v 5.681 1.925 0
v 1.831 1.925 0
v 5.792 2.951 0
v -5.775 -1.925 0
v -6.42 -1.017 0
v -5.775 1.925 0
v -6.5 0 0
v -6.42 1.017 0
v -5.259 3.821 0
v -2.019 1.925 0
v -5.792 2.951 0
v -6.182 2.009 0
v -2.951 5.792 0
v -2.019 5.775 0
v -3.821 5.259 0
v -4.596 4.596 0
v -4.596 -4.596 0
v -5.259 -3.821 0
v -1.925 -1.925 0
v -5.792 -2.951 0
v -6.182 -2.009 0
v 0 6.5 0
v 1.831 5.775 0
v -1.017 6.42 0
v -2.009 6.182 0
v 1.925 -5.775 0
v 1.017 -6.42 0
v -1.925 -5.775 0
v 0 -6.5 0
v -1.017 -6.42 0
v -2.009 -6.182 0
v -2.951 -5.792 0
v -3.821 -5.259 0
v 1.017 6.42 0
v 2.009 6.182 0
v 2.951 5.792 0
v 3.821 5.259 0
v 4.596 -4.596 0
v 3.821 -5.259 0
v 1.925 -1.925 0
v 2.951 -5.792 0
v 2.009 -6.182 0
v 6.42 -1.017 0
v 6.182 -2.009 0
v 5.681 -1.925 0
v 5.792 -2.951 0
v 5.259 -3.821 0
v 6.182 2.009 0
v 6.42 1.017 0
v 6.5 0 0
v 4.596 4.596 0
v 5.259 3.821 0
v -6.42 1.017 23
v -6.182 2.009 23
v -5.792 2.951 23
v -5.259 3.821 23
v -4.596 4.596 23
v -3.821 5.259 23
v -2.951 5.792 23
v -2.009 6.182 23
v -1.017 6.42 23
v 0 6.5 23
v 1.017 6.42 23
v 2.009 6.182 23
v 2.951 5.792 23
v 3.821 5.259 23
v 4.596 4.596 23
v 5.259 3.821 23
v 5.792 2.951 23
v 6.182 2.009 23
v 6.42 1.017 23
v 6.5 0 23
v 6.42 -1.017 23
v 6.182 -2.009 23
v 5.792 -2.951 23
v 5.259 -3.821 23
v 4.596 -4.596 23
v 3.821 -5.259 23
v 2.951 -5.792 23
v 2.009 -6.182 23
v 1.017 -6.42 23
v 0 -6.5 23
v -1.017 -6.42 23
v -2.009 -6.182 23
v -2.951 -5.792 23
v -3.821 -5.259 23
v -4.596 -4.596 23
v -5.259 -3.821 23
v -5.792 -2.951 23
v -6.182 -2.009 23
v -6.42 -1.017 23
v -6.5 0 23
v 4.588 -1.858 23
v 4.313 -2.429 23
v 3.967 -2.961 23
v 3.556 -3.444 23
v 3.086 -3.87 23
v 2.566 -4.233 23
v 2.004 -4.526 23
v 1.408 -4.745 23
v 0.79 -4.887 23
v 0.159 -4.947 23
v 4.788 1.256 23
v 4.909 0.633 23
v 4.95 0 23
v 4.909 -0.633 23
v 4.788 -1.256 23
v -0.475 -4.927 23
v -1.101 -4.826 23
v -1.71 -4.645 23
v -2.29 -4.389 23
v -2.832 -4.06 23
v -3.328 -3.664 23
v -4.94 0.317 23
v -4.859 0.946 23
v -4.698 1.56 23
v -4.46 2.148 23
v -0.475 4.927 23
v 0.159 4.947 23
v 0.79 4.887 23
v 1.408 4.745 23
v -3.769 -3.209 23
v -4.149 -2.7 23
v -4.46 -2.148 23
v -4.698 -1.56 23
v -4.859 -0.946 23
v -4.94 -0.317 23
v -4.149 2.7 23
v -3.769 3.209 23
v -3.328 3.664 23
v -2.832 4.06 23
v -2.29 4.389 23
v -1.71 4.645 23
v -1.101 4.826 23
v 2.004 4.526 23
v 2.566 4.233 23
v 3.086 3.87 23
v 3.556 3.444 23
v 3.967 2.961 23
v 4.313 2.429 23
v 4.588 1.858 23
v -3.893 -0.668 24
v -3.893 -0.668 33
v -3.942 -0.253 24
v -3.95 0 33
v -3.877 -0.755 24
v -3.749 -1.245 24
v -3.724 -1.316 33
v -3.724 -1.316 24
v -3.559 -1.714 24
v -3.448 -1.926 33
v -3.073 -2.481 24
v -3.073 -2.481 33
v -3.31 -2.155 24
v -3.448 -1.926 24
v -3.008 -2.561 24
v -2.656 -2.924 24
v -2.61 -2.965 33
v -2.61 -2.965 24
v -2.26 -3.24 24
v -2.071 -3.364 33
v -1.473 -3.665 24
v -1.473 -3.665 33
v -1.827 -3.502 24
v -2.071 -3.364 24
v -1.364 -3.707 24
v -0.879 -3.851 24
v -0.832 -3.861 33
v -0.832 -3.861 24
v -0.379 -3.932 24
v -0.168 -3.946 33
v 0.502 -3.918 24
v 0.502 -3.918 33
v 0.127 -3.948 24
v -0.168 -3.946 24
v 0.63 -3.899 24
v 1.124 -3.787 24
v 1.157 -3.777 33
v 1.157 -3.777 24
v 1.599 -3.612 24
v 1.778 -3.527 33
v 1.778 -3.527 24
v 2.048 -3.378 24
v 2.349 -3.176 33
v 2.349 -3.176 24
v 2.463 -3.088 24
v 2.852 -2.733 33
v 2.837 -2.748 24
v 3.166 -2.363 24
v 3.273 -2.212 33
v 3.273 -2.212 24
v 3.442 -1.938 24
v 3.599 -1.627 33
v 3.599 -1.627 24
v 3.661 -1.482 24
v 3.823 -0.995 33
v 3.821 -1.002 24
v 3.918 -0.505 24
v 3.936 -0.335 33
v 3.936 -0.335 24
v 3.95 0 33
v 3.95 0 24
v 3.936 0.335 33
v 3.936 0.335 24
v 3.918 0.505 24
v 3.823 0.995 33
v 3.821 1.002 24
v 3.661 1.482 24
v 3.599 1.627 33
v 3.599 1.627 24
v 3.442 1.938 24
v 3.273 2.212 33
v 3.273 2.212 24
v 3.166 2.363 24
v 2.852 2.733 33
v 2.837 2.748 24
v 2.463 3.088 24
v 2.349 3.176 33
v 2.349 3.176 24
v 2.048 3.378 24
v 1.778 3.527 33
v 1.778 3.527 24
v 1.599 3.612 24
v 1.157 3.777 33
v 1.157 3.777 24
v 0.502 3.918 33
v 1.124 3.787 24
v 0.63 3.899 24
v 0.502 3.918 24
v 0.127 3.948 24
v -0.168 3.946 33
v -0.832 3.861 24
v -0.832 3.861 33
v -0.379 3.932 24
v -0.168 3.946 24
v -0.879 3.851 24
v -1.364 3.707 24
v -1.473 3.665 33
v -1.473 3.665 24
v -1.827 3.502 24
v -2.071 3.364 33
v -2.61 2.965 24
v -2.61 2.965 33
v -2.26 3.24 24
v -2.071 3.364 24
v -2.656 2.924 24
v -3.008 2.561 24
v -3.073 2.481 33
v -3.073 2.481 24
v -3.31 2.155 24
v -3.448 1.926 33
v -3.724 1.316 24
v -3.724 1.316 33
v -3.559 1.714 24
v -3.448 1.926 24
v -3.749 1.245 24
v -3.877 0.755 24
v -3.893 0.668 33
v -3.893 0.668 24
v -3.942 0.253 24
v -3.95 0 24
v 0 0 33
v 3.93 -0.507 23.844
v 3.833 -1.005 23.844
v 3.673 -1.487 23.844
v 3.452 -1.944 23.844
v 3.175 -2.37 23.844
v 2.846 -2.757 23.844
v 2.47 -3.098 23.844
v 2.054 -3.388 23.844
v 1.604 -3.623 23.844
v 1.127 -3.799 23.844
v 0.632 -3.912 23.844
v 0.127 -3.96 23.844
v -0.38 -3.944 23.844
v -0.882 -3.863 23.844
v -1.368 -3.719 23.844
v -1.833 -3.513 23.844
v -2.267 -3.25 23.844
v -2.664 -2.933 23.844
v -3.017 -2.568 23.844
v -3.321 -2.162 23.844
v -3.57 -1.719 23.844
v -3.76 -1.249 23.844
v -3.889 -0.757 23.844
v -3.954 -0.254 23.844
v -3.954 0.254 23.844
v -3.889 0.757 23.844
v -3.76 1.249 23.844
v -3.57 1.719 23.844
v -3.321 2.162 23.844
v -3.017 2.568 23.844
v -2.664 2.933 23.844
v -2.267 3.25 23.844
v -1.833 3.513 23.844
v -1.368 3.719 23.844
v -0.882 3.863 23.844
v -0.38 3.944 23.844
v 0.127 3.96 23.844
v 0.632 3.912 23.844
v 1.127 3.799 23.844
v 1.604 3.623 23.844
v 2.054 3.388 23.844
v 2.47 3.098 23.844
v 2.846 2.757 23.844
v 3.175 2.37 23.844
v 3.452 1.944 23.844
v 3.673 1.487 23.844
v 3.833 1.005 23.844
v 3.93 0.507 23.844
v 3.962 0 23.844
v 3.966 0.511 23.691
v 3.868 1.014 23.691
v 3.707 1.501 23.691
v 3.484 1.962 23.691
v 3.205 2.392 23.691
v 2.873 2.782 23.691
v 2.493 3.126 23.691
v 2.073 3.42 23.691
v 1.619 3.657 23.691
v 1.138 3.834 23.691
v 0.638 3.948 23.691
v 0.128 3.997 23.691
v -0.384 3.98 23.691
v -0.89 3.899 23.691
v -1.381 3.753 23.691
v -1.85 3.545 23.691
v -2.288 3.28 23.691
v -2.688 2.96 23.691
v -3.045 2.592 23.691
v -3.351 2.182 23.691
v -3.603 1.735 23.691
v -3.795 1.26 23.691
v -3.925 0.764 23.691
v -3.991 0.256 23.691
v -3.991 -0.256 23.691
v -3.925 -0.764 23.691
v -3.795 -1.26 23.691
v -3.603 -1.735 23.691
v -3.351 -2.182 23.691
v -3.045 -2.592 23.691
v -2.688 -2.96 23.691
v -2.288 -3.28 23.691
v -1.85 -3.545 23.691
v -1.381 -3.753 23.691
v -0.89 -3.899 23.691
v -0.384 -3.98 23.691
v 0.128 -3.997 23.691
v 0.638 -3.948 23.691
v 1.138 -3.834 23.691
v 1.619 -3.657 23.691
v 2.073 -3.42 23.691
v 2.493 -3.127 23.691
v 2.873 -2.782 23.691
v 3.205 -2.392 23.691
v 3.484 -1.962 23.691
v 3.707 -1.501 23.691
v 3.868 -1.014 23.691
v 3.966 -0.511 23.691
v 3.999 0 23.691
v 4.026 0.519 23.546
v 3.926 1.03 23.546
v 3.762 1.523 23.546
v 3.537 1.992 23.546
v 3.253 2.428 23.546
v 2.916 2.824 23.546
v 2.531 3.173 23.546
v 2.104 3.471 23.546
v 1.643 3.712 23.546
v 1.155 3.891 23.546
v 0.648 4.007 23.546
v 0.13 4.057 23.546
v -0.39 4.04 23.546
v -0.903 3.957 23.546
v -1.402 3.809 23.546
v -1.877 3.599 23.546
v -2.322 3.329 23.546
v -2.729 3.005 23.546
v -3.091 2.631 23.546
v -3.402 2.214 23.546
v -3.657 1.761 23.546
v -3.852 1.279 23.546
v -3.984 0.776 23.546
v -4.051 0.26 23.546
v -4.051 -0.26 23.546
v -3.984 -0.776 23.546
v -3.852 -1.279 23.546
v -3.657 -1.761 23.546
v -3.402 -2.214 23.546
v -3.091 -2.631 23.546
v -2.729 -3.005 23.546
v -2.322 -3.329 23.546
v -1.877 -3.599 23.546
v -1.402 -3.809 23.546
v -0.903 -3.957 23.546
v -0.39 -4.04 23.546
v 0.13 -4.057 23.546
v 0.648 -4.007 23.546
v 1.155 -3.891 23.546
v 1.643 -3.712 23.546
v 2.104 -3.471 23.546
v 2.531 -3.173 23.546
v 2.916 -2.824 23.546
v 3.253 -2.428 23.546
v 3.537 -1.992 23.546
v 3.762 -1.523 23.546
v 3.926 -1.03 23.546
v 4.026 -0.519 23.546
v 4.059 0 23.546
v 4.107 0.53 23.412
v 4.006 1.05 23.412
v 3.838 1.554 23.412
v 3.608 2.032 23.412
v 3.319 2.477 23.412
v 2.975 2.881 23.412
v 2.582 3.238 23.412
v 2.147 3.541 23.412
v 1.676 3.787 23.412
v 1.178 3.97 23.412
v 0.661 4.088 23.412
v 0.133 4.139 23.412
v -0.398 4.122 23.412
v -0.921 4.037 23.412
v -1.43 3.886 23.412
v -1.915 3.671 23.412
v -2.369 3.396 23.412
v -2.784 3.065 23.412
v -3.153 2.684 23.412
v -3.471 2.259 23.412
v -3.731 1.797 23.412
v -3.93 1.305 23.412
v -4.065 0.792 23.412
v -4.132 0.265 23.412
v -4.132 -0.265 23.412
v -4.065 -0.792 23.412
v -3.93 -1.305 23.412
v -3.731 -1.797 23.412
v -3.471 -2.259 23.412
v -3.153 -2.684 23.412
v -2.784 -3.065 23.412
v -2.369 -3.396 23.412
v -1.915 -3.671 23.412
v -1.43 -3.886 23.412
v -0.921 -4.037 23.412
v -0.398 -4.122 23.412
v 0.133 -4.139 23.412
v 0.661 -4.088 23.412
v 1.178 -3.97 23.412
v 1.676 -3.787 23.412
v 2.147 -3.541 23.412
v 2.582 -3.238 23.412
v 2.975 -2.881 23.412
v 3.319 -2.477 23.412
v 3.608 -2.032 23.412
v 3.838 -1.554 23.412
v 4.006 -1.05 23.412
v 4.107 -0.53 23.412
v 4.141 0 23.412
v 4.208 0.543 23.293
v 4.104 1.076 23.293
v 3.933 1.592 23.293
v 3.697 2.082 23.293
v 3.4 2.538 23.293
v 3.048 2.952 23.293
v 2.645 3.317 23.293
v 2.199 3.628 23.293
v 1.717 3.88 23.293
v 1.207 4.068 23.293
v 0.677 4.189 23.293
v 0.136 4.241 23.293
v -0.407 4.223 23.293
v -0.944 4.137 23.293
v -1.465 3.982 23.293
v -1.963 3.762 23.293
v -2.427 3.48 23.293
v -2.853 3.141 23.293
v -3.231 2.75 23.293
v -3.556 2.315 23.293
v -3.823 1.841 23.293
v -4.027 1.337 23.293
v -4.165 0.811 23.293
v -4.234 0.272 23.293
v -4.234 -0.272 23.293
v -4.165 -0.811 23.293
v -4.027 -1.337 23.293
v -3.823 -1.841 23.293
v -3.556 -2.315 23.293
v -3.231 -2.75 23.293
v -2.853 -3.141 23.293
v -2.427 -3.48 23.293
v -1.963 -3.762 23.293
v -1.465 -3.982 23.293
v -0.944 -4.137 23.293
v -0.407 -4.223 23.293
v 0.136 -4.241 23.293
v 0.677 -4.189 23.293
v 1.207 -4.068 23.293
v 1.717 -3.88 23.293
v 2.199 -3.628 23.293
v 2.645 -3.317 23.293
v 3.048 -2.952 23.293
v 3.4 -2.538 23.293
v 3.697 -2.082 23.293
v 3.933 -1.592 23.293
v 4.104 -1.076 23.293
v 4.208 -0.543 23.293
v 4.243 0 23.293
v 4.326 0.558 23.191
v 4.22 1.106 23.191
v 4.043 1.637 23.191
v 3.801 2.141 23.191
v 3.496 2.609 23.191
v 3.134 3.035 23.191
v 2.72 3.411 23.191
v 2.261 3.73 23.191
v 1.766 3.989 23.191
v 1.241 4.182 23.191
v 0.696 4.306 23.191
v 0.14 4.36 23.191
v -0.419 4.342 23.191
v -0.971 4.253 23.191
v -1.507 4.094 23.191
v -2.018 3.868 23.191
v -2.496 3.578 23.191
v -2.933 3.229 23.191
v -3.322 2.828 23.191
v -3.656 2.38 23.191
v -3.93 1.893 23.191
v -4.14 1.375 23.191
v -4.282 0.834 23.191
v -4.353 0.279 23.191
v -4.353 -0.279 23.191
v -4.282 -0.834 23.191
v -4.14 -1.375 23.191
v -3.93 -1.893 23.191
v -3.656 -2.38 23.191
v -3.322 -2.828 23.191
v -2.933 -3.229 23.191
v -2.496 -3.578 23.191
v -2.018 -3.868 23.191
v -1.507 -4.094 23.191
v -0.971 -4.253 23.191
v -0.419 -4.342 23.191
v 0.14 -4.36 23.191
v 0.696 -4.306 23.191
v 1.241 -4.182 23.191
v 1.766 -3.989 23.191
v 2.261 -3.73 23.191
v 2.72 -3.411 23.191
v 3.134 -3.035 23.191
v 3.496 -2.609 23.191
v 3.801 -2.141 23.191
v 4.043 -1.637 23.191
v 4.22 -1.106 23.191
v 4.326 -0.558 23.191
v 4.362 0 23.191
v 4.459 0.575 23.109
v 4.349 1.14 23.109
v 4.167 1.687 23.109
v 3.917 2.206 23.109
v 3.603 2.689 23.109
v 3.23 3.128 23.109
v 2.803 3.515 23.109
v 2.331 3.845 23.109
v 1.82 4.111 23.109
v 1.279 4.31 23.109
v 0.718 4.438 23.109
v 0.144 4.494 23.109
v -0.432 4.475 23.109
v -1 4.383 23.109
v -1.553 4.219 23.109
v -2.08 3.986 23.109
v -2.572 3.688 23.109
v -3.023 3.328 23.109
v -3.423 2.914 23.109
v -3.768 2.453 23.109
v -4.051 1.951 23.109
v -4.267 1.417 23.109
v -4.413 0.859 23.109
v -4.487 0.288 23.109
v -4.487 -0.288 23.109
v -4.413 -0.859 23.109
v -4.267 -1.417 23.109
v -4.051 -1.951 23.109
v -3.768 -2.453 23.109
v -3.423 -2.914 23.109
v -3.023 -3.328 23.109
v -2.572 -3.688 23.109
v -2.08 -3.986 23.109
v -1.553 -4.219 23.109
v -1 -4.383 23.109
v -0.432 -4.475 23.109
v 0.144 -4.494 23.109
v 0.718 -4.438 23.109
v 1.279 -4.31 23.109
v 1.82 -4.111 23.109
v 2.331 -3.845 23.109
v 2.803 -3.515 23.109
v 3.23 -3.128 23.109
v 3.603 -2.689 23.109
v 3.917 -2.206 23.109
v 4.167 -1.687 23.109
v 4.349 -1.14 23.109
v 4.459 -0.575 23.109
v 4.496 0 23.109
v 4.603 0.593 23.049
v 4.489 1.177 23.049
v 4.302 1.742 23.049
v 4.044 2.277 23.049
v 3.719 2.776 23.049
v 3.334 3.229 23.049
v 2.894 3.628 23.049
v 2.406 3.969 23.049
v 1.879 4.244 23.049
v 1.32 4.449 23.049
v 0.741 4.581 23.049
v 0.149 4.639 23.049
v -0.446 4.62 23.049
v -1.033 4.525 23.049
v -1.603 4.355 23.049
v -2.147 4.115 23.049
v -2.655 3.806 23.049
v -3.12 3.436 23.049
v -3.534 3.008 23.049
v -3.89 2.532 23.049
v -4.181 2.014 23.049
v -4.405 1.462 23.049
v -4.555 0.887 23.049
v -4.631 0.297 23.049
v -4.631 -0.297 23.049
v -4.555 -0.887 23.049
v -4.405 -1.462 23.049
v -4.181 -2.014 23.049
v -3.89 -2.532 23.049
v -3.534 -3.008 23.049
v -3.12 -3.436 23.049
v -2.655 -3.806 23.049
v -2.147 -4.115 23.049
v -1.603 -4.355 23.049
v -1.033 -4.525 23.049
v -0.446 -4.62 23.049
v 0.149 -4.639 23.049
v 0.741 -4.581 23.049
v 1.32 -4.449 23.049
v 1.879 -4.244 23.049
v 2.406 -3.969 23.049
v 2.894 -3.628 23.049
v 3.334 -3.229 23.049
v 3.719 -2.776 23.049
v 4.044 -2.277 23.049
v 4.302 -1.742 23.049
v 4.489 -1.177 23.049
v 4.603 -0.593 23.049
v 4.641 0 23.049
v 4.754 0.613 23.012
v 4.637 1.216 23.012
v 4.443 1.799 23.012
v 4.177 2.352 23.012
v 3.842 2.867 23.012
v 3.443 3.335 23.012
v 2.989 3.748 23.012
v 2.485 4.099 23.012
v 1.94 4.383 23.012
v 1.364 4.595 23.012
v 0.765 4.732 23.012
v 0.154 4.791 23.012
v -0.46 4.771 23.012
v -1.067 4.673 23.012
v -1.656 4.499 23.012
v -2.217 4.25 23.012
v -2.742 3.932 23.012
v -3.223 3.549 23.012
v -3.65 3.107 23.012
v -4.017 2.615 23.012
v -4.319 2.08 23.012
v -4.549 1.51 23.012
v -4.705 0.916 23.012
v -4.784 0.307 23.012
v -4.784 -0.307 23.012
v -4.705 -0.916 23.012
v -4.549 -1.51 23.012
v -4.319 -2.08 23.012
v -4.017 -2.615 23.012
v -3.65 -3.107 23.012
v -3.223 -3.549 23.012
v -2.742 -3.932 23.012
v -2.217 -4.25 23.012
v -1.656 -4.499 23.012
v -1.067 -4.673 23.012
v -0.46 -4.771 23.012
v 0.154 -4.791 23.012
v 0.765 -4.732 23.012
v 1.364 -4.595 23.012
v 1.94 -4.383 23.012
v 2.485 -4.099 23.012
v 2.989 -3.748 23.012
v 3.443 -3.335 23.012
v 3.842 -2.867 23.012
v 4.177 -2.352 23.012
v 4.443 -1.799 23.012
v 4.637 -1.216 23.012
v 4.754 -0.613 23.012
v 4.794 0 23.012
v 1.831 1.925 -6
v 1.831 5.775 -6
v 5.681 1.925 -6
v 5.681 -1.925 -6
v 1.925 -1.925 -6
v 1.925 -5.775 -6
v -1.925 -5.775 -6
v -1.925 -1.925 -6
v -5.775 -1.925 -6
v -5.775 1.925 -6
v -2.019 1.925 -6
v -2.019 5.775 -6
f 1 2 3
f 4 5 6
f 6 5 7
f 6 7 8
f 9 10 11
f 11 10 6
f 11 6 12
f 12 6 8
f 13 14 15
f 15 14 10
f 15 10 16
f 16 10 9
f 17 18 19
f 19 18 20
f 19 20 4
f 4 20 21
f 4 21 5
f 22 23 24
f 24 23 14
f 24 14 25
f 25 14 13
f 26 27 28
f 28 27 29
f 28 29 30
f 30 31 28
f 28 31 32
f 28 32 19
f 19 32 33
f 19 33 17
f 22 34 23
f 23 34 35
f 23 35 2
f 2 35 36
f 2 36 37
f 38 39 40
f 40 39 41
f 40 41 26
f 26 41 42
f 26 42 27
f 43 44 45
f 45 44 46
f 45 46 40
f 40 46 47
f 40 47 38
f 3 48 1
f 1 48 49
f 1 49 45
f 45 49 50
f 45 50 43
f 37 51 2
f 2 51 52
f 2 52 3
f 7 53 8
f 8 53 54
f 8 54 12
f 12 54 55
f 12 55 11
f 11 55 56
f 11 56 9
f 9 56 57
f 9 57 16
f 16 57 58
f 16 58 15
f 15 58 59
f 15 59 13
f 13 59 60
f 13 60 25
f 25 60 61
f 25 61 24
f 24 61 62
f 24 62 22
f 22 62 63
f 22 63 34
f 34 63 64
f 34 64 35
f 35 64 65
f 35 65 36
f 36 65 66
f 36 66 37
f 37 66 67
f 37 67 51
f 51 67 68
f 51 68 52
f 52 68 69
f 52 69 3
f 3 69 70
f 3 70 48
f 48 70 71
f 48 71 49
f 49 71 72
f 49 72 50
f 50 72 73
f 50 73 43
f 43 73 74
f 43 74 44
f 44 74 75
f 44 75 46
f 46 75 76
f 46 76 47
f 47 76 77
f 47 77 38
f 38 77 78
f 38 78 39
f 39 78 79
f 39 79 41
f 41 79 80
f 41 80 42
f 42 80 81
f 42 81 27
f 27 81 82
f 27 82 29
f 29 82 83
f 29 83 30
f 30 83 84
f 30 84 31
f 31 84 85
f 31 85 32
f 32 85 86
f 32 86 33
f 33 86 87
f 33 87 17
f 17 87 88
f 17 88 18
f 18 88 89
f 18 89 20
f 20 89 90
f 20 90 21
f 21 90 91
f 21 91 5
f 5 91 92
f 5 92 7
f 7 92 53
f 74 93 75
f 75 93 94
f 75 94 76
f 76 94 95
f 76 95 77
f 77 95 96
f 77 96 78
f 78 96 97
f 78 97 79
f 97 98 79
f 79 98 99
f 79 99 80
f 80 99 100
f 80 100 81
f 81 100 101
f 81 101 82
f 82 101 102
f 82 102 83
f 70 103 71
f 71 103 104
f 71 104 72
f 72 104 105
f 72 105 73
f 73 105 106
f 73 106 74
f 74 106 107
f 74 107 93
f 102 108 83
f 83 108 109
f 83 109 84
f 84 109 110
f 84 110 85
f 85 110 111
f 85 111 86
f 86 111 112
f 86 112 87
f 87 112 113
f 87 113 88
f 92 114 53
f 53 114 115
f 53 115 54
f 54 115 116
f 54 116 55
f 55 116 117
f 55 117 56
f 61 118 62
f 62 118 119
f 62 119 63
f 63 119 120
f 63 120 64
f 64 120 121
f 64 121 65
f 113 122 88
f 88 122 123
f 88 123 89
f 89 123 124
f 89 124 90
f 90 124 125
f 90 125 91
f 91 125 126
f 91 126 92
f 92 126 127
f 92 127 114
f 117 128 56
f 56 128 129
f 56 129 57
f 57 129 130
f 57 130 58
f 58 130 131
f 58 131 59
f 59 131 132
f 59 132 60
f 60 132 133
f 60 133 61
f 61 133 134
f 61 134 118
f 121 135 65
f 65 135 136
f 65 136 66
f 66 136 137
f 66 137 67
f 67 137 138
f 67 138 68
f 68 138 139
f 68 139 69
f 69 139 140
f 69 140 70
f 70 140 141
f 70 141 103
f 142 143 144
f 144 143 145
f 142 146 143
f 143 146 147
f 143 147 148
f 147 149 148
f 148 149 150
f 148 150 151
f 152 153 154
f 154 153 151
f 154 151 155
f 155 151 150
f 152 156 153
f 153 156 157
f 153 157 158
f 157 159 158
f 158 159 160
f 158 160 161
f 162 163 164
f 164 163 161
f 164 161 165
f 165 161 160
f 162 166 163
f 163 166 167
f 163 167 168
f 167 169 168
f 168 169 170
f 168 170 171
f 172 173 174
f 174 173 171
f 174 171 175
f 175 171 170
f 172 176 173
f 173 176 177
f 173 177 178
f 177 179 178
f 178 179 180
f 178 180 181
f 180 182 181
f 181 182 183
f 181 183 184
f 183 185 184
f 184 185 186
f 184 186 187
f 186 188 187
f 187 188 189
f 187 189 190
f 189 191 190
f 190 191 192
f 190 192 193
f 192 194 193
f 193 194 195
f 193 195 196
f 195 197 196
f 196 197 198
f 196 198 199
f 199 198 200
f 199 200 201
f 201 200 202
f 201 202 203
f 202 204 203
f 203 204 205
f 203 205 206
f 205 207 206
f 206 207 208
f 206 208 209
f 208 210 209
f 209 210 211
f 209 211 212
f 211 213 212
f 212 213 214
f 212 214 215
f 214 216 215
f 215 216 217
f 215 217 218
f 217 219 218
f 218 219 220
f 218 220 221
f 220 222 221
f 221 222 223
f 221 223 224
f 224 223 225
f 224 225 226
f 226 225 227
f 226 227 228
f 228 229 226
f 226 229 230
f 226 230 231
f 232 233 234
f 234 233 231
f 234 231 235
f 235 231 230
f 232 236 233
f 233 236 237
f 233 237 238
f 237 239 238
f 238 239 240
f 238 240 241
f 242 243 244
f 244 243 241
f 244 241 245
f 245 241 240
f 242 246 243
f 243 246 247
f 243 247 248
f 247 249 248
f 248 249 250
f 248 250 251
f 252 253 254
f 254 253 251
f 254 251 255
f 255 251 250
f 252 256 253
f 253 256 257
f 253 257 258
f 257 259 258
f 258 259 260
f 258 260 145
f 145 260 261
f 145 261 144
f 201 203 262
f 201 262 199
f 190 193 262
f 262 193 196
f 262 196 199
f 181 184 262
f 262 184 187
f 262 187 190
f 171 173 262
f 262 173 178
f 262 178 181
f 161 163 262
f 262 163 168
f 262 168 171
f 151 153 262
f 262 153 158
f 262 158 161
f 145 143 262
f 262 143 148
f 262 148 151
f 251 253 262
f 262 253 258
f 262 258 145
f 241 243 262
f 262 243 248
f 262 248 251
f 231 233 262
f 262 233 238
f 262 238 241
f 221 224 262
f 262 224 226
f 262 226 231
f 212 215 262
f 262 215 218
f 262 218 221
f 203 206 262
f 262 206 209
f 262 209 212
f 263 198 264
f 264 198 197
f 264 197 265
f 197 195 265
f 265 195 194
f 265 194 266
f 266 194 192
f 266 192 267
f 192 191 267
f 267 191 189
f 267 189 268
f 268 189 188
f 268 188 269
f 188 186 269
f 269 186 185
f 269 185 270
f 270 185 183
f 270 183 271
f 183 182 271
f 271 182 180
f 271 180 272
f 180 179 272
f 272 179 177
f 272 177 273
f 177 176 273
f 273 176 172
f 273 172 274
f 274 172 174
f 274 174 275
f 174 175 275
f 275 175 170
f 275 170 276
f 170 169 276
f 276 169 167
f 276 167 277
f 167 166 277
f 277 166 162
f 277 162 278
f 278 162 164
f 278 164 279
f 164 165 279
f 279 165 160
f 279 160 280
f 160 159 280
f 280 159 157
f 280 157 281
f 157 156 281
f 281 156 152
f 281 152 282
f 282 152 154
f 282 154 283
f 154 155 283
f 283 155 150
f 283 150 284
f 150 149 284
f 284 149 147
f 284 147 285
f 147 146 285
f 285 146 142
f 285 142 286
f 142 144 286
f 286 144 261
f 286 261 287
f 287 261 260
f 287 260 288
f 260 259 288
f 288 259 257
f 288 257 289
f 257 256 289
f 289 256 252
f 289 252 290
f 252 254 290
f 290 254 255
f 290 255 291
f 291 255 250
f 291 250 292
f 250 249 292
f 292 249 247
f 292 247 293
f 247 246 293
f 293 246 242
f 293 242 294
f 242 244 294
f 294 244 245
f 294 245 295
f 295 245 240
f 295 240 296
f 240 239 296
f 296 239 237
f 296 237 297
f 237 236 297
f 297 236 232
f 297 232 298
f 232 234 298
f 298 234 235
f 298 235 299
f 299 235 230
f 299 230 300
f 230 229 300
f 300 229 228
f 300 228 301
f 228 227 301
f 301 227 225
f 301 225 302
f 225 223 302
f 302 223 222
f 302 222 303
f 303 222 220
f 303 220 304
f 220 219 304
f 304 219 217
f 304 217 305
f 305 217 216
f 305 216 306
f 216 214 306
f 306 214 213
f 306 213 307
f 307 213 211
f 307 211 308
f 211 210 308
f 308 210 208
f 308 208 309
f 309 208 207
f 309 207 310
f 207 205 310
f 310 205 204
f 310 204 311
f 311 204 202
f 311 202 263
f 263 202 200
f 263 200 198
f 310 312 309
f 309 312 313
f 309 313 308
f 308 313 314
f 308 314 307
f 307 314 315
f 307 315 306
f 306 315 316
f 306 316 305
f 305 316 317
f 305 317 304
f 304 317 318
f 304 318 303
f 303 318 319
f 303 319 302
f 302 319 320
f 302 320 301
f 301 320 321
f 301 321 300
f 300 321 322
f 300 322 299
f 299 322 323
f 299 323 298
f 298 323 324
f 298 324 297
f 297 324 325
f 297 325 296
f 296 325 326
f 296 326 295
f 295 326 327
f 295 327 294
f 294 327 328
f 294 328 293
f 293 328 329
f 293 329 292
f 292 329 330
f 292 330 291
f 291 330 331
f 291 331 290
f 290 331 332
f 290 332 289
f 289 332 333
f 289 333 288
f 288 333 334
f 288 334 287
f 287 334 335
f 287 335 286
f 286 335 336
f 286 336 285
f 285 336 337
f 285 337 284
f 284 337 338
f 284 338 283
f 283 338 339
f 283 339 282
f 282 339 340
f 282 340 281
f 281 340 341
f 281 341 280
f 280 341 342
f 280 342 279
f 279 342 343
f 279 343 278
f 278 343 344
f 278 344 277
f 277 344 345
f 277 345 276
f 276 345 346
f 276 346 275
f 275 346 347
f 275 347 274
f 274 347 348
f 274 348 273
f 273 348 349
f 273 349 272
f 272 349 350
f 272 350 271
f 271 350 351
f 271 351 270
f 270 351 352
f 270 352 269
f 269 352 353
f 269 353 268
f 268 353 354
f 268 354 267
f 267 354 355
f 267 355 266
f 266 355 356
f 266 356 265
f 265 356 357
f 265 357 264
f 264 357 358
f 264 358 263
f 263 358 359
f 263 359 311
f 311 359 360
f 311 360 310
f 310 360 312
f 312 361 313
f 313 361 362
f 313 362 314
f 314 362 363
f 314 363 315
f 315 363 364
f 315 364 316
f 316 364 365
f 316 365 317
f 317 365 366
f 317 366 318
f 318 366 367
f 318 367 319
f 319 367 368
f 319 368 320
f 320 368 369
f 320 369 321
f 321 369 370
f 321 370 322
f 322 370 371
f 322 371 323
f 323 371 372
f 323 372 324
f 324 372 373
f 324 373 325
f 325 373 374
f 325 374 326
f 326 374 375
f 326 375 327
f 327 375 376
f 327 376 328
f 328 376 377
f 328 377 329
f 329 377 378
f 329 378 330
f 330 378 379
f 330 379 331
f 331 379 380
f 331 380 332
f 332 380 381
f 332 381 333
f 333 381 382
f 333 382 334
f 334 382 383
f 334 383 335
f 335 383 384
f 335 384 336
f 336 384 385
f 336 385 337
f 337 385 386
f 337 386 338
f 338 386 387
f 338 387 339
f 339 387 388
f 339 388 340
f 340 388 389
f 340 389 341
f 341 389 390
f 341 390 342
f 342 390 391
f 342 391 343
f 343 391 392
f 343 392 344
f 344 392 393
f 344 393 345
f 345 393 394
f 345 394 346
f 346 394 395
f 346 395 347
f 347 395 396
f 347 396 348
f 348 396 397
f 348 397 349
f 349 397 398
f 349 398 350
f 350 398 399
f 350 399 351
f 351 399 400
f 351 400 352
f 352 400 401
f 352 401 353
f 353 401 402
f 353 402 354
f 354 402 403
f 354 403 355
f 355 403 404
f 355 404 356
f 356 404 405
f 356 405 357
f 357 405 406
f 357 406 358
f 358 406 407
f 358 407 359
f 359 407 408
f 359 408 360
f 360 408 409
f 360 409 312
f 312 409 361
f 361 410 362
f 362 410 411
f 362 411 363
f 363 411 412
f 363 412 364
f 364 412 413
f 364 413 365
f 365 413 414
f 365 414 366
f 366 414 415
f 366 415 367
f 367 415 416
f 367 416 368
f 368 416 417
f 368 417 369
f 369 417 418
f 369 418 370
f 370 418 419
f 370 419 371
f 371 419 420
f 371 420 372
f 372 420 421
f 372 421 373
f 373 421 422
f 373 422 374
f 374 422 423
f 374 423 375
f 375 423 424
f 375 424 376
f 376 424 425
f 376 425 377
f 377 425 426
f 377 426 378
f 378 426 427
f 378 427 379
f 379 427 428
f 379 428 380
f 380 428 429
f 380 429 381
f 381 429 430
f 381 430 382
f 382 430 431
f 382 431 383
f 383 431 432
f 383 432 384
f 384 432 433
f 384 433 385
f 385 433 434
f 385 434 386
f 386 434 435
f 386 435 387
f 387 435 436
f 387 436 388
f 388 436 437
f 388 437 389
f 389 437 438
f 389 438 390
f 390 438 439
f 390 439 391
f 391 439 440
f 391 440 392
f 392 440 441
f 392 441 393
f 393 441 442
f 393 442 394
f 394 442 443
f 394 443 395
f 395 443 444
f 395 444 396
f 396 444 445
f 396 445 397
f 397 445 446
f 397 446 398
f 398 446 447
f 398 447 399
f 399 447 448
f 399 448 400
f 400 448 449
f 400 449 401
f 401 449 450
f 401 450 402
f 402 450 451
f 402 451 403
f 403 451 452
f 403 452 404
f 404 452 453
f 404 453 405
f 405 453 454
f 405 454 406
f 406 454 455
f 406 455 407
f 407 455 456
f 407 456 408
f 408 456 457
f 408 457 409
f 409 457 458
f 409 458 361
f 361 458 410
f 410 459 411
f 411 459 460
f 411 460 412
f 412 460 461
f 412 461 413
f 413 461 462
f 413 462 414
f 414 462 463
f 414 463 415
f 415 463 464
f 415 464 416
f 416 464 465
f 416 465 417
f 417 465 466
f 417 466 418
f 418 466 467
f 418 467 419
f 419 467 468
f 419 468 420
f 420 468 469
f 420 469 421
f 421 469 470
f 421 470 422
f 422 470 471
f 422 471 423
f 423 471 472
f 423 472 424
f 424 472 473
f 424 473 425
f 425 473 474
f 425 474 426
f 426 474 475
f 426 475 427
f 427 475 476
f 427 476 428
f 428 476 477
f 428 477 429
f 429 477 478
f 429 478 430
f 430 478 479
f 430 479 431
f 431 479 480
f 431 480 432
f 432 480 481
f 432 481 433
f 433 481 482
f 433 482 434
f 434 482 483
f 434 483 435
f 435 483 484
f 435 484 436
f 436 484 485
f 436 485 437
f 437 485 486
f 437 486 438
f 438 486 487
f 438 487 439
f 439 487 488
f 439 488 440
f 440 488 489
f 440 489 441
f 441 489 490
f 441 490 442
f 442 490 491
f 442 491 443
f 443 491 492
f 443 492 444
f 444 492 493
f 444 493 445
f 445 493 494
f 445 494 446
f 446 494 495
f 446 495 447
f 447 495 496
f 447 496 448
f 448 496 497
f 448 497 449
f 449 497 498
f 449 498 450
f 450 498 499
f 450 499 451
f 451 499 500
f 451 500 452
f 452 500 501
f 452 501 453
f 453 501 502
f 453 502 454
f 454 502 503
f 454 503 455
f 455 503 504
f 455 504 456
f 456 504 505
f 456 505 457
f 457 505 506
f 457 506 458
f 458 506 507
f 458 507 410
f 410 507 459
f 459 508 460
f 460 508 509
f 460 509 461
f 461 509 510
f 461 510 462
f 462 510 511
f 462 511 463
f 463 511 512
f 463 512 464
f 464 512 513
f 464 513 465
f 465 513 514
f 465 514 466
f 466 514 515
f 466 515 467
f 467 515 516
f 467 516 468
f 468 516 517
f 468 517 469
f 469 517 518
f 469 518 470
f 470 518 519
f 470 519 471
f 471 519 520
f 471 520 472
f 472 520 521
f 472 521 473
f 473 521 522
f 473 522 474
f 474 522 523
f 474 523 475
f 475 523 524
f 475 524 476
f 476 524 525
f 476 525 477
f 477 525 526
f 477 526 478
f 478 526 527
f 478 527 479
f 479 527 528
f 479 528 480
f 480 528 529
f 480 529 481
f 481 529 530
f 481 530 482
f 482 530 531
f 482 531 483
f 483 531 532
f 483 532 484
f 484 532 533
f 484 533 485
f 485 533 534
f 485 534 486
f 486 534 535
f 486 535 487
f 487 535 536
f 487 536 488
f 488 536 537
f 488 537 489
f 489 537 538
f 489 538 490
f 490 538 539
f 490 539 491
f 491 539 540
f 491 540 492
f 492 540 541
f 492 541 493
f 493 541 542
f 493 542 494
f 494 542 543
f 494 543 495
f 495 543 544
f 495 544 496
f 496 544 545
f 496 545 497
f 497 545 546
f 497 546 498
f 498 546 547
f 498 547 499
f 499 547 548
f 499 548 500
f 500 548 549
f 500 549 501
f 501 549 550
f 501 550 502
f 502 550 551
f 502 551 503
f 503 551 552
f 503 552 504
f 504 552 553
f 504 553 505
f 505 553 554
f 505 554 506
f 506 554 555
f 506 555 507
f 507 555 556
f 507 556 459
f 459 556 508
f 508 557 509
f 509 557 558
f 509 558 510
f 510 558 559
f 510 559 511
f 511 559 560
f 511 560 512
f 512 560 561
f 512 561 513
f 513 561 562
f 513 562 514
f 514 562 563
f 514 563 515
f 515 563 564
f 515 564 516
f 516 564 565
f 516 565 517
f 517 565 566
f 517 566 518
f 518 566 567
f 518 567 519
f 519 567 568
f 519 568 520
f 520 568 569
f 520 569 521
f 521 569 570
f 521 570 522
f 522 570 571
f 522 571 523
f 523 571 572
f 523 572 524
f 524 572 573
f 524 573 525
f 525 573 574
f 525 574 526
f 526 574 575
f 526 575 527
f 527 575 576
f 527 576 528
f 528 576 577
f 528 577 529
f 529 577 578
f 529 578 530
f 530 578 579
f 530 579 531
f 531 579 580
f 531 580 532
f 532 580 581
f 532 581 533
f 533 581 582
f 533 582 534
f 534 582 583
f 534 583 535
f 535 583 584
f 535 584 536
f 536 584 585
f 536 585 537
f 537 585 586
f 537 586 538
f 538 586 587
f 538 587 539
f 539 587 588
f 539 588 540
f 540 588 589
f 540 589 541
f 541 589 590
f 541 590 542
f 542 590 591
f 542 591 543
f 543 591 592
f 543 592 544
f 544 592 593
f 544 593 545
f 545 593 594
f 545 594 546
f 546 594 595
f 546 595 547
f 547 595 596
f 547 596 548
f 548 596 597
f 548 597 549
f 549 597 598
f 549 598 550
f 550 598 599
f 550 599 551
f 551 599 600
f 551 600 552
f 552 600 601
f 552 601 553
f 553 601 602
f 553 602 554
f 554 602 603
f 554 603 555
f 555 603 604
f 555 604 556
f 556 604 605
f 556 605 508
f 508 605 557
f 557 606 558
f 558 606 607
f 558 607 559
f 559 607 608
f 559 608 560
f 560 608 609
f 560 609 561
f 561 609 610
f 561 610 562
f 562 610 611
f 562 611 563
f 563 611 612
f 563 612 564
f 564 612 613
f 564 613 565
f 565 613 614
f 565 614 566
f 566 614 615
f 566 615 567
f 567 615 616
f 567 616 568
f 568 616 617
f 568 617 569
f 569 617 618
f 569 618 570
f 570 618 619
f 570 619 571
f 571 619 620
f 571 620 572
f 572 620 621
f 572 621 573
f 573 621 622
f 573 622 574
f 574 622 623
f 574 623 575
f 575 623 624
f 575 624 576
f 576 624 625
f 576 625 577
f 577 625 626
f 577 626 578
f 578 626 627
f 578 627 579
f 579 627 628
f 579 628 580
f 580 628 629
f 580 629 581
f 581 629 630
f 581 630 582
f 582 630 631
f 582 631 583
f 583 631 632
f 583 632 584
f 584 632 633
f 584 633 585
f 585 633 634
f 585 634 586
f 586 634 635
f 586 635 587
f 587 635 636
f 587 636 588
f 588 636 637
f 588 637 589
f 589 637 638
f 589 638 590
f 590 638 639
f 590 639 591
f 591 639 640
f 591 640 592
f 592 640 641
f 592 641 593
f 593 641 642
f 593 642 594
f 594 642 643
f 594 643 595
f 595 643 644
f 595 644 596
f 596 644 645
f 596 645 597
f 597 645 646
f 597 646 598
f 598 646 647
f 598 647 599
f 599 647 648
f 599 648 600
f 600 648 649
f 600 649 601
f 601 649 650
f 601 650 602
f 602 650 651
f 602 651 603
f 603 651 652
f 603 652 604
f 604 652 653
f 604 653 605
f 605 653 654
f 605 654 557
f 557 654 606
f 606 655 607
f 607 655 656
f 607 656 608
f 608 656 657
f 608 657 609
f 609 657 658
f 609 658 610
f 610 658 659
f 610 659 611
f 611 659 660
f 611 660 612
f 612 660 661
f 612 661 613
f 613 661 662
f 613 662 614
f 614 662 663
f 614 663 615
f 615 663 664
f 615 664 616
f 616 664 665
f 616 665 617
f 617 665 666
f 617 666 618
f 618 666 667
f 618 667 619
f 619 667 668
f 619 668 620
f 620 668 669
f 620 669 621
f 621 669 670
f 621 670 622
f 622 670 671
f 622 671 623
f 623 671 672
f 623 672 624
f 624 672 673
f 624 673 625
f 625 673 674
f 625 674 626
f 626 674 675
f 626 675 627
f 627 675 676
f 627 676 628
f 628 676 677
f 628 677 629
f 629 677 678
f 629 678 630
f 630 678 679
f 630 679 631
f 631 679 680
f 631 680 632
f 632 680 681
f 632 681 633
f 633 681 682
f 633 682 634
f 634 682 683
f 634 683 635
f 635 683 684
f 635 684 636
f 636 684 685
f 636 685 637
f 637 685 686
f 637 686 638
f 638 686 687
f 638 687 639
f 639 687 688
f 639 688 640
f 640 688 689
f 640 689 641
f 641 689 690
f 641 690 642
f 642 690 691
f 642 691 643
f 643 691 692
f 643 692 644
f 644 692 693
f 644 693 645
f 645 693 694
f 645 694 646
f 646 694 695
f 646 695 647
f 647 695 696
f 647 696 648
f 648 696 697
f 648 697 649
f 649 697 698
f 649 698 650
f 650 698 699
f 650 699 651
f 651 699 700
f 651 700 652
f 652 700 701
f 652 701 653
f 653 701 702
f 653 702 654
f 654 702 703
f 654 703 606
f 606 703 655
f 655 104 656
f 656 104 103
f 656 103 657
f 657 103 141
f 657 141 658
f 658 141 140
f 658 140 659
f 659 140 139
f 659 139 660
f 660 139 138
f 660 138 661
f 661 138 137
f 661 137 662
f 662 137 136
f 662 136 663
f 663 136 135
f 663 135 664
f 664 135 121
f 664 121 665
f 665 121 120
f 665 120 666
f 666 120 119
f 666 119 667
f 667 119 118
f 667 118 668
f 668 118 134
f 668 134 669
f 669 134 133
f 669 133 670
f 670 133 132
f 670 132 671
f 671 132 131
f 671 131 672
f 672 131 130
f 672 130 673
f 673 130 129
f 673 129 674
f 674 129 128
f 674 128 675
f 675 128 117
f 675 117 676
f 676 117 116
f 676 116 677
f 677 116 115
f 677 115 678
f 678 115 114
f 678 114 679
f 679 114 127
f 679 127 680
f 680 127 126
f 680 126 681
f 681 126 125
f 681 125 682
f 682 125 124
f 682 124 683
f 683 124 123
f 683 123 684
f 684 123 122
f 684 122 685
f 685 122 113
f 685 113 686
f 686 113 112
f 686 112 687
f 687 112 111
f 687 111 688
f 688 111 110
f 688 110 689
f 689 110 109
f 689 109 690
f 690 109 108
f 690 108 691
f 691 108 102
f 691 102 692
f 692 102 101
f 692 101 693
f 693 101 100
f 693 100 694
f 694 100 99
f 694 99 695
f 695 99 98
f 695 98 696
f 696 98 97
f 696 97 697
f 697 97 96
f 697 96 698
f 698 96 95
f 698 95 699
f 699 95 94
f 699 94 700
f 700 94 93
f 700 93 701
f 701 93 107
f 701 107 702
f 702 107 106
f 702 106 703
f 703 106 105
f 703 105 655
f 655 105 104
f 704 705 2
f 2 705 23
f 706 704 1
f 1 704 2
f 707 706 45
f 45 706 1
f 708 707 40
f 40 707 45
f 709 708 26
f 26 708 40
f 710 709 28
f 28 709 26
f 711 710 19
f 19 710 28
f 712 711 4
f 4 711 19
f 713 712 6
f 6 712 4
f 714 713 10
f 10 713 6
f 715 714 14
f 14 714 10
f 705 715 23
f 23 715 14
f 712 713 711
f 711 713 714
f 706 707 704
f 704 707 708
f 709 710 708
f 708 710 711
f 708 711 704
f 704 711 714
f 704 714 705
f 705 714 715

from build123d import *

# Parameters (mm, degrees)
CROQUIS1_R              = 6.5
SALIENTE_EXTRUIR1_DEPTH = 23
CROQUIS2_R              = 3.95
SALIENTE_EXTRUIR2_DEPTH = 10
REDONDEO1_R             = 1
SALIENTE_EXTRUIR3_DEPTH = 6


with BuildPart() as part:
    # Croquis1 → Saliente-Extruir1 (new body)
    with BuildSketch(Plane.XY):
        Circle(CROQUIS1_R)
    extrude(amount=SALIENTE_EXTRUIR1_DEPTH)

    # Croquis2 → Saliente-Extruir2 (add)
    with BuildSketch(Plane.XY.offset(23)):
        Circle(CROQUIS2_R)
    extrude(amount=SALIENTE_EXTRUIR2_DEPTH)

    # Redondeo1
    redondeo1_edges = [part.edges().sort_by_distance(p)[0] for p in [
        (-3.95, 0, 23),
    ]]
    fillet(redondeo1_edges, radius=REDONDEO1_R)

    # Croquis3 → Saliente-Extruir3 (add)
    with BuildSketch(Plane(origin=(0, 0, 0), x_dir=(-1, 0, 0), z_dir=(0, 0, -1))):
        Polygon((-1.830695776, 5.775), (2.019304224, 5.775), (2.019304224, 1.925), (5.775, 1.925), (5.775, -1.925), (1.925, -1.925), (1.925, -5.775), (-1.925, -5.775), (-1.925, -1.925), (-5.680695776, -1.925), (-5.680695776, 1.925), (-1.830695776, 1.925), align=None)
    extrude(amount=SALIENTE_EXTRUIR3_DEPTH)


solid = part.part
